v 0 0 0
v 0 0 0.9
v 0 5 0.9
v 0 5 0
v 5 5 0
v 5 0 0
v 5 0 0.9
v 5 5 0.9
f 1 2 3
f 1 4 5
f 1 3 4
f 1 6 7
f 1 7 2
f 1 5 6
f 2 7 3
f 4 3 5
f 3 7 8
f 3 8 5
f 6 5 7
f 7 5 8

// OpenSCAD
/* Warning, this is a very basic generator with a lot of approximation 
input data : [VQFN, QZB, 5x5x0.9mm, 32, , A, C04-21511A]
generated by com.zoubworld.electronics.cad.model3d.Basic
Date : Sun Feb 15 10:50:49 CET 2026
*/

//body
color("black")
translate([0,0,0])
cube([5.0,5.0,0.9], center=false);
